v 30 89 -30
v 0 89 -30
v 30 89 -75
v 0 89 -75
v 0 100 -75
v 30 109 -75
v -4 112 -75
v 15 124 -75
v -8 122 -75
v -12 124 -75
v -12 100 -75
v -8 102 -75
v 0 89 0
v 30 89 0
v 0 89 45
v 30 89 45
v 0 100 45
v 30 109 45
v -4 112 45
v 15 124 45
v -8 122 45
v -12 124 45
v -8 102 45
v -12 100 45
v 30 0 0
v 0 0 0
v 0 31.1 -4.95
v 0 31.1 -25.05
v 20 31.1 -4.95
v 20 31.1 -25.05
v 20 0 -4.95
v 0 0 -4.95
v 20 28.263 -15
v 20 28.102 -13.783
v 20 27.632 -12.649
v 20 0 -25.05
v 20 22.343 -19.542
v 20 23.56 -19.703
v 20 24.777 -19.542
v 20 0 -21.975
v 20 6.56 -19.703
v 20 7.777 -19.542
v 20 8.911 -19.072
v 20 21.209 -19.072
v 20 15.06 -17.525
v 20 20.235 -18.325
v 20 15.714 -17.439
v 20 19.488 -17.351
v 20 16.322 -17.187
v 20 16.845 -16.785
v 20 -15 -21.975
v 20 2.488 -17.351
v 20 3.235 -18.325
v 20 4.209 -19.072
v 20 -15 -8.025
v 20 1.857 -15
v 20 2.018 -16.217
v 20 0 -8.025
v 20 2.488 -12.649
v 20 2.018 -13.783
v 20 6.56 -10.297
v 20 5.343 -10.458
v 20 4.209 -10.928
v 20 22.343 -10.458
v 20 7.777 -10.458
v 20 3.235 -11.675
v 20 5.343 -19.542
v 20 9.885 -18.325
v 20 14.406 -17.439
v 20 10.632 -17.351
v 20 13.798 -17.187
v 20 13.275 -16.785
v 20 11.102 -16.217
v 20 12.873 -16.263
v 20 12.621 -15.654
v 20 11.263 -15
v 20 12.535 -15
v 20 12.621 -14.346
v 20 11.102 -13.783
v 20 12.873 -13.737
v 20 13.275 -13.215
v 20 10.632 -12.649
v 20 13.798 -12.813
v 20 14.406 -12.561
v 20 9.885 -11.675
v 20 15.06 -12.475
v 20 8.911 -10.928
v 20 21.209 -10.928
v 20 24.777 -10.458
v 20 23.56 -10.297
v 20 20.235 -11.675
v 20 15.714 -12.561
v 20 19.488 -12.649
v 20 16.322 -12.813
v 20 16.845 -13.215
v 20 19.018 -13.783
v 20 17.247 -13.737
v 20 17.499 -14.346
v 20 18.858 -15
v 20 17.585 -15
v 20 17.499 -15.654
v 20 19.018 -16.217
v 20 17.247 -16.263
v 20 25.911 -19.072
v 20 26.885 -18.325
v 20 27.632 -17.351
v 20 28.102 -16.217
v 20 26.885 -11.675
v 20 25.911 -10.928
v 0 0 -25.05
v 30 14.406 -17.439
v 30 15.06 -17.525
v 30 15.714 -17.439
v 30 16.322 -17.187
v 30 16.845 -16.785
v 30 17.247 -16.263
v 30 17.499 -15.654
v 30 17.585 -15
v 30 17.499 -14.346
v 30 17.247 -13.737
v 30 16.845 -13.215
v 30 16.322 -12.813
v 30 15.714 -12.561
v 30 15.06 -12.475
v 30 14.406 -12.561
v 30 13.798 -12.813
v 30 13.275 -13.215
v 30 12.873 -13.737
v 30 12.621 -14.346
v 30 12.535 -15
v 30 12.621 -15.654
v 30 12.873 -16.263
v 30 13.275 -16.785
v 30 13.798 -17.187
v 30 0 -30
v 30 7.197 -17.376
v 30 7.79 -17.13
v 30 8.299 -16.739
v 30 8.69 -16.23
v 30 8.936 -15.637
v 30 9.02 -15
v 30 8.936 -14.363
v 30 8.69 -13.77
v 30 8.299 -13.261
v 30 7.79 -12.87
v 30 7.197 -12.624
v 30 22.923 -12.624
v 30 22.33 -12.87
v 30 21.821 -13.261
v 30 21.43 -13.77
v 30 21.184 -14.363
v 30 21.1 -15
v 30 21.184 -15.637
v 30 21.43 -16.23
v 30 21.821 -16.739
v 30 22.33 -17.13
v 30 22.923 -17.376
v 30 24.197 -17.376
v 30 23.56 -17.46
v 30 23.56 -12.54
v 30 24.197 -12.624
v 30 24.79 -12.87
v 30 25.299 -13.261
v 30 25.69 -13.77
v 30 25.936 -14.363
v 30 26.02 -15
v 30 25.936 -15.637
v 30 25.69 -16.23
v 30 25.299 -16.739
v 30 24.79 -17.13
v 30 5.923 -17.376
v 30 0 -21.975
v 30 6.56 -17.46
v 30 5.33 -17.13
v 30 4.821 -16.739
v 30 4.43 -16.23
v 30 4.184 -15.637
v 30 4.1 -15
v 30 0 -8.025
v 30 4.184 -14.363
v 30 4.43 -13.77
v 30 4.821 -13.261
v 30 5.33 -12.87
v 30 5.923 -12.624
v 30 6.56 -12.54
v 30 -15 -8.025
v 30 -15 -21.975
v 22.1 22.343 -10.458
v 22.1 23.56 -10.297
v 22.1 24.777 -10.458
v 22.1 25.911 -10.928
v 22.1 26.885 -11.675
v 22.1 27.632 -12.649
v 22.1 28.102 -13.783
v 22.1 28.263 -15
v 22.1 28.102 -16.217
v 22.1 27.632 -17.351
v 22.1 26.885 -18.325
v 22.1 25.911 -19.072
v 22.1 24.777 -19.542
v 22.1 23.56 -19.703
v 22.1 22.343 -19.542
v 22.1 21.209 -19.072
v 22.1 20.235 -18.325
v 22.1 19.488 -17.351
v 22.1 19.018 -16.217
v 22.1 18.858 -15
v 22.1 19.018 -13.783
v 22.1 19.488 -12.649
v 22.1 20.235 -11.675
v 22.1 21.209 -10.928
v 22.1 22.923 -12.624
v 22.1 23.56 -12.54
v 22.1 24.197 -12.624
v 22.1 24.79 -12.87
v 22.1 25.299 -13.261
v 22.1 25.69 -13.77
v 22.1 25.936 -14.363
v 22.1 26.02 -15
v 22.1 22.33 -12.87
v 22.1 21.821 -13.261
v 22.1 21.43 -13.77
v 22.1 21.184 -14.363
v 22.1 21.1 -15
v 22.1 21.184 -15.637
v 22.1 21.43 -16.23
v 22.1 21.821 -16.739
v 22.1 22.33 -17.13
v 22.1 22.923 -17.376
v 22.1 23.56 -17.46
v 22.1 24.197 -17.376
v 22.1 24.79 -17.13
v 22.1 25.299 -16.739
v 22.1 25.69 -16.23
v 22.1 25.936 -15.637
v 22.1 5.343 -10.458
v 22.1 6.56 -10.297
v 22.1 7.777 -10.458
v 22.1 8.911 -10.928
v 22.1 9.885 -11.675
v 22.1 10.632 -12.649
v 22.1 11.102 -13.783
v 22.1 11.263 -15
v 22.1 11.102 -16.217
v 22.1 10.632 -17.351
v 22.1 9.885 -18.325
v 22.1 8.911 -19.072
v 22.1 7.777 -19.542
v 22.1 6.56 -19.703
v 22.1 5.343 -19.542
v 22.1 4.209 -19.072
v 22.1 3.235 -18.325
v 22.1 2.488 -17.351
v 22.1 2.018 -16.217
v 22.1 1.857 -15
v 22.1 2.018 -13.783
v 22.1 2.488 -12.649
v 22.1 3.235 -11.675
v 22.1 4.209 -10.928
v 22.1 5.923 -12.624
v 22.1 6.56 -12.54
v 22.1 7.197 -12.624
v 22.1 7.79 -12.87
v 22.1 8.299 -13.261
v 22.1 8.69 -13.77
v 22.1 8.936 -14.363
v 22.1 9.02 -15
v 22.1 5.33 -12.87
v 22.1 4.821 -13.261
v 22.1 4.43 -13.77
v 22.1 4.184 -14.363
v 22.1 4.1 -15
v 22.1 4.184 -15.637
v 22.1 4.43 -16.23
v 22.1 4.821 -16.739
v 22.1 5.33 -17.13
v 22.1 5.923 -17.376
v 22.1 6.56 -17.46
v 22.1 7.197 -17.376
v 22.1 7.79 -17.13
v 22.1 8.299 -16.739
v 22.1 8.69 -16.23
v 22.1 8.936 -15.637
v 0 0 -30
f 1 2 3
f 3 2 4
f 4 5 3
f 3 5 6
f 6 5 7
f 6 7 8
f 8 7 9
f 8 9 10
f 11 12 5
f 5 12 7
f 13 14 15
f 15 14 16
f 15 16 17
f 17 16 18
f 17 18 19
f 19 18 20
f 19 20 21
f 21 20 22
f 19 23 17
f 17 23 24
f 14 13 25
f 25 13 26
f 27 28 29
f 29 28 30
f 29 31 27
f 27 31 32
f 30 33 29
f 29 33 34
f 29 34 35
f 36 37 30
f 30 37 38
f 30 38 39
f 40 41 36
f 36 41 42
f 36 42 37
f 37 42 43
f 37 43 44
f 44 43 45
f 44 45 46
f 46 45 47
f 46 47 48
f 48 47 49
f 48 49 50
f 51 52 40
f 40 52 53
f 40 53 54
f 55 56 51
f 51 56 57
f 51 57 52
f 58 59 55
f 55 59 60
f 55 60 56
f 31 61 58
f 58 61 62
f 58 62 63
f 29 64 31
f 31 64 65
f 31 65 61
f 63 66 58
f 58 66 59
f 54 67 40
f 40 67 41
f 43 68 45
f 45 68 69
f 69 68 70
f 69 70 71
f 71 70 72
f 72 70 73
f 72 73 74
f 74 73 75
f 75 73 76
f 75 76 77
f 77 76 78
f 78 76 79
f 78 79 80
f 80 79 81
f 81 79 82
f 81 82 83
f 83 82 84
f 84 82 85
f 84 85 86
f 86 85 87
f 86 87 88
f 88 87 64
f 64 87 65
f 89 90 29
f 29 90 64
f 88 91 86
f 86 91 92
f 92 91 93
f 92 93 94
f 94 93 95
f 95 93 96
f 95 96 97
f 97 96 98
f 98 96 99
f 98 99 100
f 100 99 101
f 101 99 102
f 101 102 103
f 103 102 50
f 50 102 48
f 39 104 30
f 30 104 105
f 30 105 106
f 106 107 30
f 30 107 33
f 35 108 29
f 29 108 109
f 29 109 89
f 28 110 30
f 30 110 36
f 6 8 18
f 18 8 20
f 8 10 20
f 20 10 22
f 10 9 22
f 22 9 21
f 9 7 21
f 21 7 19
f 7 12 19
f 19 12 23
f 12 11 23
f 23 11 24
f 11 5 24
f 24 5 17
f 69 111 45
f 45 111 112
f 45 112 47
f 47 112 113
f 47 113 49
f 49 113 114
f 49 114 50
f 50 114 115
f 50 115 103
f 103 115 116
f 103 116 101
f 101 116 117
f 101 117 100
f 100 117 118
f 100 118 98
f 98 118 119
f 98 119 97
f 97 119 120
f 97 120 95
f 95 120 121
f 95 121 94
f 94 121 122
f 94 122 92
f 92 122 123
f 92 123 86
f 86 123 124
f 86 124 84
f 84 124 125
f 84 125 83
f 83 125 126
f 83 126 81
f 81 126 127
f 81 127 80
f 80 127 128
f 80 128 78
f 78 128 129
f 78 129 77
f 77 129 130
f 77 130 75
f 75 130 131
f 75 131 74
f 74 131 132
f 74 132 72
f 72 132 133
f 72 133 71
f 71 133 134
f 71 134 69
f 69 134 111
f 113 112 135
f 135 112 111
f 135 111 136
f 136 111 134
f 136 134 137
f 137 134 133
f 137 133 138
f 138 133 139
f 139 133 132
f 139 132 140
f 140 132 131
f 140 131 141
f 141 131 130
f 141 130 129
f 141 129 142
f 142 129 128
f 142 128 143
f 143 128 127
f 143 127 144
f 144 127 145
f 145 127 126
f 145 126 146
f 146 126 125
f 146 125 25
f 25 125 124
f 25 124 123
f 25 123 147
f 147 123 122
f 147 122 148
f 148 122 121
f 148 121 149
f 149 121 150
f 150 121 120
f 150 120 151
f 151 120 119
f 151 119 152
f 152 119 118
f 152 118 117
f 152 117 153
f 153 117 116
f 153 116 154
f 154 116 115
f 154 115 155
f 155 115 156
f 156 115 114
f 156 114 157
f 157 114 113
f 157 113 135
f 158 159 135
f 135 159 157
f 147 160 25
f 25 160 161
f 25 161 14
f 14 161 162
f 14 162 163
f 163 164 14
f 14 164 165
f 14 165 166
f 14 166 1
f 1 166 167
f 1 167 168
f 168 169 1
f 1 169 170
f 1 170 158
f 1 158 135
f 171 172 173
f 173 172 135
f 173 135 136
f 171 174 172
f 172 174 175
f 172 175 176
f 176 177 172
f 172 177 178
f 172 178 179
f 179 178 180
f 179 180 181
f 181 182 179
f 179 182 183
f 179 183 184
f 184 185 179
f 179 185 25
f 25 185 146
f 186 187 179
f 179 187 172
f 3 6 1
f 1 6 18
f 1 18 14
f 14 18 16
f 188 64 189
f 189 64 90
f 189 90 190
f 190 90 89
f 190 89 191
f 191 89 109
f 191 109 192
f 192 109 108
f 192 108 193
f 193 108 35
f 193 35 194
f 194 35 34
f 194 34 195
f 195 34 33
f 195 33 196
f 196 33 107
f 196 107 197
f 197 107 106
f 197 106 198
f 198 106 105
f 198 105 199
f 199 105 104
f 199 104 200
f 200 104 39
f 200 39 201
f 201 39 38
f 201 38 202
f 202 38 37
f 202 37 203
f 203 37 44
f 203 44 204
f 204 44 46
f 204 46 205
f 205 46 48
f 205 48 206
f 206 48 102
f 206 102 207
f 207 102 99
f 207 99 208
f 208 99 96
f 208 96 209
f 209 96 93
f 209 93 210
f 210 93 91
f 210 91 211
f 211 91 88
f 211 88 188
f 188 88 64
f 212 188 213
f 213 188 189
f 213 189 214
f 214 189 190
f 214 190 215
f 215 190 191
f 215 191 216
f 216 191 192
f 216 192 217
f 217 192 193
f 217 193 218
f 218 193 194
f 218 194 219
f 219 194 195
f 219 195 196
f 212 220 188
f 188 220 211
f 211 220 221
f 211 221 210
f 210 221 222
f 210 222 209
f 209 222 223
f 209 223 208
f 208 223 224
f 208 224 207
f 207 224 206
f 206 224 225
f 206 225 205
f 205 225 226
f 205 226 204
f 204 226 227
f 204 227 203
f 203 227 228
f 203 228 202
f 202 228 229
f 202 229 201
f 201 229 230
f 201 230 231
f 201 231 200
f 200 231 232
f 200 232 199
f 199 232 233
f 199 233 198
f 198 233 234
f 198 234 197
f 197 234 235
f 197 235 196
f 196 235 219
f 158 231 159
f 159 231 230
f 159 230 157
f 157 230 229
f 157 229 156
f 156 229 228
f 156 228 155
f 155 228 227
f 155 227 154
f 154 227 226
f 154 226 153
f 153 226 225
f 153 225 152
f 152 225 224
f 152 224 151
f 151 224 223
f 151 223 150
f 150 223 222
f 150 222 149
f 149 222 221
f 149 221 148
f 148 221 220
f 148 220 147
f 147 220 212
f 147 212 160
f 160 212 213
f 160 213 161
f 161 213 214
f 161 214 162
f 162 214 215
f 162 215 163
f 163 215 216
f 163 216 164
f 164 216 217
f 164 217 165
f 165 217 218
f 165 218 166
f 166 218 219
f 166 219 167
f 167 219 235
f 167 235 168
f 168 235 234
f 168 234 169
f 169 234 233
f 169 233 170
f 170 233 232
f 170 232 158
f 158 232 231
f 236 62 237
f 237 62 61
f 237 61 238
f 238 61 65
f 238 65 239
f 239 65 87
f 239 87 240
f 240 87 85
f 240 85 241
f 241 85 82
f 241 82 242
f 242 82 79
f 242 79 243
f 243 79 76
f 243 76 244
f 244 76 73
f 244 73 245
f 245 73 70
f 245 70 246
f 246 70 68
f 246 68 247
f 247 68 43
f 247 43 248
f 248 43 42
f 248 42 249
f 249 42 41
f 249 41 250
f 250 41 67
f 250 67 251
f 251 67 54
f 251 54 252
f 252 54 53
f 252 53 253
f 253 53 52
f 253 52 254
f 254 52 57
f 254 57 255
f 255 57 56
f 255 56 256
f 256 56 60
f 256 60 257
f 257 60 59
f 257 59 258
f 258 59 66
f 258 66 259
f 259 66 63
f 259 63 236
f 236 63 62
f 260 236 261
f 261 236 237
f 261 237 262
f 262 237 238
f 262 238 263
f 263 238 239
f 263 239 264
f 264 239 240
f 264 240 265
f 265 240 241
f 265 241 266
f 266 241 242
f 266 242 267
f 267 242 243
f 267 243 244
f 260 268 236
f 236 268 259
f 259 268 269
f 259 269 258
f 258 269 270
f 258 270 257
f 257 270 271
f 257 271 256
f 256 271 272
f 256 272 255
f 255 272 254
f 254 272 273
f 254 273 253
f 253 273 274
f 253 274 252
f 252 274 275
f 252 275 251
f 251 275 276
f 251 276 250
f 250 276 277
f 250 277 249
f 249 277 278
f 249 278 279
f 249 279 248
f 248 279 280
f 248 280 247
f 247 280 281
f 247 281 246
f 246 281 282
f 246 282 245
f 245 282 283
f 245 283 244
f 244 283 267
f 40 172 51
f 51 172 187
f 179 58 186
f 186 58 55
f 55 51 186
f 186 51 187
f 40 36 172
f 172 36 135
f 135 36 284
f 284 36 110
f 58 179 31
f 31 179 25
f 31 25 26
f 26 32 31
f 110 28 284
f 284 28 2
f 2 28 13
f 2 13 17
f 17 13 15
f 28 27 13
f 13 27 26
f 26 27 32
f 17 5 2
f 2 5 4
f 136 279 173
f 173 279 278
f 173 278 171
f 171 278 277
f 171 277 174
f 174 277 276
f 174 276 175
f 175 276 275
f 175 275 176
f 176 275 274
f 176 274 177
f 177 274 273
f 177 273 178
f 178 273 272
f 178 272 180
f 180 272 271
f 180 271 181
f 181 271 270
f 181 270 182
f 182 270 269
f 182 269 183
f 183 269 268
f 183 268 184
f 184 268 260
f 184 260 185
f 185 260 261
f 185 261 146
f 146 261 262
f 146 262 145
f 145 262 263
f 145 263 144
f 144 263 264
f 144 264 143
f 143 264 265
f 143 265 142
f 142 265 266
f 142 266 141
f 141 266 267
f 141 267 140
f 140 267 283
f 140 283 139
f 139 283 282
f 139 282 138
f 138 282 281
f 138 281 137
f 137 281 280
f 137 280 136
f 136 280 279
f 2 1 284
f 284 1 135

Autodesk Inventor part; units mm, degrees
ref_plane "YZ Plane" through (0, 0, 0) normal (1, 0, 0) x (0, 1, 0)
ref_plane "XZ Plane" through (0, 0, 0) normal (0, 1, 0) x (-1, 0, 0)
sketch "Sketch1" plane through (0, 0, 0) normal (0, 0, 1) x (1, 0, 0)
  line L0 (0, 0) -> (25, 0)
  line L1 (25, 0) -> (25, 40)
  line L2 (25, 40) -> (0, 40)
  line L3 (0, 40) -> (0, 0)
  dimension "d1" = 25
  dimension "d2" = 40
  dimension "d3" = 25
extrude "Extrusion1" add sketch "Sketch1" against normal blind 30
sketch "Sketch2" plane through (25, 0, 0) normal (1, 0, 0) x (0, 0, -1)
  line L0 (0, 0) -> (30, 0) projected
  circle A0 centre (15, 6.56) radius 2.46
extrude "Extrusion2" cut sketch "Sketch2" against normal blind 30
sketch "Sketch3" plane through (0, 0, 0) normal (-1, 0, 0) x (0, 0, 1)
  line L0 (0, 0) -> (-30, 0) projected
  line L1 (-25.05, 0) -> (-4.95, 0)
  line L2 (-4.95, 0) -> (-4.95, 33.12)
  line L3 (-4.95, 33.12) -> (-25.05, 33.12)
  line L4 (-25.05, 33.12) -> (-25.05, 0)
  dimension "d11" = 20.1
extrude "Extrusion3" cut sketch "Sketch3" against normal blind 20
sketch "Sketch4" plane through (0, 0, 0) normal (0, -1, 0) x (1, 0, 0)
  line L0 (20, -4.95) -> (20, -25.05) projected
  line L1 (20, -15) -> (25, -15)
  line L2 (25, 0) -> (25, -30) projected
  line L3 (20, -8.025) -> (25, -8.025)
  line L4 (25, -8.025) -> (25, -21.975)
  line L5 (25, -21.975) -> (20, -21.975)
  line L6 (20, -21.975) -> (20, -8.025)
  line L7 (20, -8.025) -> (25, -21.975) construction
  line L8 (25, -8.025) -> (20, -21.975) construction
  line L9 (25, -12.54) -> (25, -17.46) projected
  point P0 (0, 0)
  point P1 (22.5, -15)
  dimension "d14" = 13.95
extrude "Extrusion4" add sketch "Sketch4" along normal blind 15
sketch "Sketch5" plane through (20, 0, 0) normal (-1, 0, 0) x (0, 0, 1)
  circle A0 centre (-15, 6.56) radius 2.46 projected
  circle A1 centre (-15, 6.56) radius 4.7025
  circle A2 centre (-15, 6.56) radius 2.46 projected
  circle A3 centre (-15, 6.56) radius 2.46
  point P0 (0, 0)
  dimension "d17" = 9.405
extrude "Extrusion5" cut sketch "Sketch5" against normal blind 2.1
sketch "Sketch6" plane through (25, 0, 0) normal (1, 0, 0) x (0, 0, -1)
  circle A0 centre (15, 6.56) radius 4.7025 projected
  line L0 (15, 6.56) -> (15, 23.56)
  circle A1 centre (15, 23.56) radius 2.46
  point P0 (0, 0)
  dimension "d20" = 17
  dimension "d21" = 4.92
extrude "Extrusion6" cut sketch "Sketch6" against normal blind 10 contours A1
sketch "Sketch7" plane through (20, 0, 0) normal (-1, 0, 0) x (0, 0, 1)
  circle A0 centre (-15, 23.56) radius 2.46 projected
  circle A1 centre (-15, 23.56) radius 4.7025
  point P0 (0, 0)
  dimension "d24" = 9.405
extrude "Extrusion7" cut sketch "Sketch7" against normal blind 2.1
sketch "Sketch9" plane through (25, 0, 0) normal (1, 0, 0) x (0, 0, -1)
  circle A0 centre (15, 6.56) radius 2.46 projected
  circle A1 centre (15, 6.56) radius 2.46
  circle A2 centre (15, 23.56) radius 2.46 projected
  circle A3 centre (15, 23.56) radius 2.46
  line L0 (30, 40) -> (30, 0) projected
  line L1 (30, 0) -> (30, 40)
  line L2 (30, 40) -> (0, 40)
  line L3 (0, 40) -> (0, 0)
  line L4 (0, 0) -> (8.025, 0) projected
  line L5 (21.975, 0) -> (21.975, -15)
  line L6 (21.975, -15) -> (8.025, -15)
  line L7 (8.025, -15) -> (8.025, 0)
  line L8 (0, 0) -> (8.025, 0)
  line L9 (21.975, 0) -> (30, 0)
extrude "Extrusion8" add sketch "Sketch9" along normal blind 5
sketch "Sketch10" plane through (0, 40, 0) normal (0, 1, 0) x (1, 0, 0)
  line L0 (0, 30) -> (30, 30) projected
  line L1 (30, 0) -> (0, 0) projected
  line L2 (0, 30) -> (30, 30)
  line L3 (30, 30) -> (30, 0)
  line L4 (30, 0) -> (0, 0)
  line L5 (0, 0) -> (0, 30)
extrude "Extrusion9" add sketch "Sketch10" along normal blind 30
sketch "Sketch12" plane through (30, 0, 0) normal (1, 0, 0) x (0, 0, -1)
  circle A0 centre (15, 6.56) radius 2.46 projected
  line L0 (15, 6.56) -> (15, 15.06)
  circle A1 centre (15, 15.06) radius 2.525
  point P0 (0, 0)
  dimension "d31" = 8.5
  dimension "d33" = 5.05
extrude "Extrusion10" cut sketch "Sketch12" against normal blind 30 contours A1
sketch "Sketch14" plane through (0, 0, 0) normal (0, 0, 1) x (1, 0, 0)
  line L0 (30, 70) -> (0, 70) projected
  line L1 (0, 70) -> (0, 85)
  line L2 (30, 0) -> (30, 70) projected
  line L3 (30, 109) -> (30, 70)
  line L4 (30, 105) -> (30, 100)
  line L5 (-12, 124) -> (15, 124)
  line L6 (-8, 122) -> (-12, 124)
  line L7 (-8, 122) -> (-4, 112)
  line L8 (-8, 102) -> (-12, 100)
  line L9 (-8, 102) -> (-4, 112)
  line L10 (30, 109) -> (15, 124)
  line L11 (0, 85) -> (0, 100)
  line L12 (0, 100) -> (-12, 100)
  point P0 (0, 0)
  dimension "d69" = 12
extrude "Extrusion12" add sketch "Sketch14" against normal blind 30
sketch "Sketch15" plane through (0, 0, -25.05) normal (-1, 0, 0) x (0, 0, 1)
  line L0 (0, 33.12) -> (20.1, 33.12) projected
  line L1 (20.1, 33.12) -> (20.1, 0) projected
  line L2 (0, 33.12) -> (20.1, 33.12)
  line L3 (20.1, 33.12) -> (20.1, 31.1)
  line L4 (20.1, 31.1) -> (0, 31.1)
  line L5 (0, 31.1) -> (0, 33.12)
  point P0 (25.05, 0)
  dimension "d57" = 2.02
extrude "Extrusion13" add sketch "Sketch15" against normal blind 20
sketch "Sketch19" plane through (0, 0, 0) normal (0, 0, 1) x (1, 0, 0)
  line L0 (0, 100) -> (-12, 100) projected
  line L1 (0, 100) -> (-12, 100)
  line L2 (-12, 100) -> (-8, 102) projected
  line L3 (-12, 100) -> (-8, 102)
  line L4 (-8, 102) -> (-4, 112) projected
  line L5 (-8, 102) -> (-4, 112)
  line L6 (-4, 112) -> (-8, 122) projected
  line L7 (-4, 112) -> (-8, 122)
  line L8 (-8, 122) -> (-12, 124) projected
  line L9 (-8, 122) -> (-12, 124)
  line L10 (-12, 124) -> (15, 124) projected
  line L11 (-12, 124) -> (15, 124)
  line L12 (15, 124) -> (30, 109) projected
  line L13 (15, 124) -> (30, 109)
  line L14 (30, 109) -> (30, 89)
  line L15 (30, 89) -> (0, 89)
  line L16 (0, 89) -> (0, 100)
  point P0 (0, 0)
  dimension "d71" = 20
  dimension "d72" = 30
extrude "Extrusion14" add sketch "Sketch19" along normal blind 45
ref_plane "Work Plane1" through (0, 0, -15) normal (0, 0, 1) x (1, 0, 0)
mirror "Mirror1" about plane through (0, 0, -15) normal (0, 0, 1) of "Extrusion14"
properties part number "rec_b_20mm_x_120mm"
